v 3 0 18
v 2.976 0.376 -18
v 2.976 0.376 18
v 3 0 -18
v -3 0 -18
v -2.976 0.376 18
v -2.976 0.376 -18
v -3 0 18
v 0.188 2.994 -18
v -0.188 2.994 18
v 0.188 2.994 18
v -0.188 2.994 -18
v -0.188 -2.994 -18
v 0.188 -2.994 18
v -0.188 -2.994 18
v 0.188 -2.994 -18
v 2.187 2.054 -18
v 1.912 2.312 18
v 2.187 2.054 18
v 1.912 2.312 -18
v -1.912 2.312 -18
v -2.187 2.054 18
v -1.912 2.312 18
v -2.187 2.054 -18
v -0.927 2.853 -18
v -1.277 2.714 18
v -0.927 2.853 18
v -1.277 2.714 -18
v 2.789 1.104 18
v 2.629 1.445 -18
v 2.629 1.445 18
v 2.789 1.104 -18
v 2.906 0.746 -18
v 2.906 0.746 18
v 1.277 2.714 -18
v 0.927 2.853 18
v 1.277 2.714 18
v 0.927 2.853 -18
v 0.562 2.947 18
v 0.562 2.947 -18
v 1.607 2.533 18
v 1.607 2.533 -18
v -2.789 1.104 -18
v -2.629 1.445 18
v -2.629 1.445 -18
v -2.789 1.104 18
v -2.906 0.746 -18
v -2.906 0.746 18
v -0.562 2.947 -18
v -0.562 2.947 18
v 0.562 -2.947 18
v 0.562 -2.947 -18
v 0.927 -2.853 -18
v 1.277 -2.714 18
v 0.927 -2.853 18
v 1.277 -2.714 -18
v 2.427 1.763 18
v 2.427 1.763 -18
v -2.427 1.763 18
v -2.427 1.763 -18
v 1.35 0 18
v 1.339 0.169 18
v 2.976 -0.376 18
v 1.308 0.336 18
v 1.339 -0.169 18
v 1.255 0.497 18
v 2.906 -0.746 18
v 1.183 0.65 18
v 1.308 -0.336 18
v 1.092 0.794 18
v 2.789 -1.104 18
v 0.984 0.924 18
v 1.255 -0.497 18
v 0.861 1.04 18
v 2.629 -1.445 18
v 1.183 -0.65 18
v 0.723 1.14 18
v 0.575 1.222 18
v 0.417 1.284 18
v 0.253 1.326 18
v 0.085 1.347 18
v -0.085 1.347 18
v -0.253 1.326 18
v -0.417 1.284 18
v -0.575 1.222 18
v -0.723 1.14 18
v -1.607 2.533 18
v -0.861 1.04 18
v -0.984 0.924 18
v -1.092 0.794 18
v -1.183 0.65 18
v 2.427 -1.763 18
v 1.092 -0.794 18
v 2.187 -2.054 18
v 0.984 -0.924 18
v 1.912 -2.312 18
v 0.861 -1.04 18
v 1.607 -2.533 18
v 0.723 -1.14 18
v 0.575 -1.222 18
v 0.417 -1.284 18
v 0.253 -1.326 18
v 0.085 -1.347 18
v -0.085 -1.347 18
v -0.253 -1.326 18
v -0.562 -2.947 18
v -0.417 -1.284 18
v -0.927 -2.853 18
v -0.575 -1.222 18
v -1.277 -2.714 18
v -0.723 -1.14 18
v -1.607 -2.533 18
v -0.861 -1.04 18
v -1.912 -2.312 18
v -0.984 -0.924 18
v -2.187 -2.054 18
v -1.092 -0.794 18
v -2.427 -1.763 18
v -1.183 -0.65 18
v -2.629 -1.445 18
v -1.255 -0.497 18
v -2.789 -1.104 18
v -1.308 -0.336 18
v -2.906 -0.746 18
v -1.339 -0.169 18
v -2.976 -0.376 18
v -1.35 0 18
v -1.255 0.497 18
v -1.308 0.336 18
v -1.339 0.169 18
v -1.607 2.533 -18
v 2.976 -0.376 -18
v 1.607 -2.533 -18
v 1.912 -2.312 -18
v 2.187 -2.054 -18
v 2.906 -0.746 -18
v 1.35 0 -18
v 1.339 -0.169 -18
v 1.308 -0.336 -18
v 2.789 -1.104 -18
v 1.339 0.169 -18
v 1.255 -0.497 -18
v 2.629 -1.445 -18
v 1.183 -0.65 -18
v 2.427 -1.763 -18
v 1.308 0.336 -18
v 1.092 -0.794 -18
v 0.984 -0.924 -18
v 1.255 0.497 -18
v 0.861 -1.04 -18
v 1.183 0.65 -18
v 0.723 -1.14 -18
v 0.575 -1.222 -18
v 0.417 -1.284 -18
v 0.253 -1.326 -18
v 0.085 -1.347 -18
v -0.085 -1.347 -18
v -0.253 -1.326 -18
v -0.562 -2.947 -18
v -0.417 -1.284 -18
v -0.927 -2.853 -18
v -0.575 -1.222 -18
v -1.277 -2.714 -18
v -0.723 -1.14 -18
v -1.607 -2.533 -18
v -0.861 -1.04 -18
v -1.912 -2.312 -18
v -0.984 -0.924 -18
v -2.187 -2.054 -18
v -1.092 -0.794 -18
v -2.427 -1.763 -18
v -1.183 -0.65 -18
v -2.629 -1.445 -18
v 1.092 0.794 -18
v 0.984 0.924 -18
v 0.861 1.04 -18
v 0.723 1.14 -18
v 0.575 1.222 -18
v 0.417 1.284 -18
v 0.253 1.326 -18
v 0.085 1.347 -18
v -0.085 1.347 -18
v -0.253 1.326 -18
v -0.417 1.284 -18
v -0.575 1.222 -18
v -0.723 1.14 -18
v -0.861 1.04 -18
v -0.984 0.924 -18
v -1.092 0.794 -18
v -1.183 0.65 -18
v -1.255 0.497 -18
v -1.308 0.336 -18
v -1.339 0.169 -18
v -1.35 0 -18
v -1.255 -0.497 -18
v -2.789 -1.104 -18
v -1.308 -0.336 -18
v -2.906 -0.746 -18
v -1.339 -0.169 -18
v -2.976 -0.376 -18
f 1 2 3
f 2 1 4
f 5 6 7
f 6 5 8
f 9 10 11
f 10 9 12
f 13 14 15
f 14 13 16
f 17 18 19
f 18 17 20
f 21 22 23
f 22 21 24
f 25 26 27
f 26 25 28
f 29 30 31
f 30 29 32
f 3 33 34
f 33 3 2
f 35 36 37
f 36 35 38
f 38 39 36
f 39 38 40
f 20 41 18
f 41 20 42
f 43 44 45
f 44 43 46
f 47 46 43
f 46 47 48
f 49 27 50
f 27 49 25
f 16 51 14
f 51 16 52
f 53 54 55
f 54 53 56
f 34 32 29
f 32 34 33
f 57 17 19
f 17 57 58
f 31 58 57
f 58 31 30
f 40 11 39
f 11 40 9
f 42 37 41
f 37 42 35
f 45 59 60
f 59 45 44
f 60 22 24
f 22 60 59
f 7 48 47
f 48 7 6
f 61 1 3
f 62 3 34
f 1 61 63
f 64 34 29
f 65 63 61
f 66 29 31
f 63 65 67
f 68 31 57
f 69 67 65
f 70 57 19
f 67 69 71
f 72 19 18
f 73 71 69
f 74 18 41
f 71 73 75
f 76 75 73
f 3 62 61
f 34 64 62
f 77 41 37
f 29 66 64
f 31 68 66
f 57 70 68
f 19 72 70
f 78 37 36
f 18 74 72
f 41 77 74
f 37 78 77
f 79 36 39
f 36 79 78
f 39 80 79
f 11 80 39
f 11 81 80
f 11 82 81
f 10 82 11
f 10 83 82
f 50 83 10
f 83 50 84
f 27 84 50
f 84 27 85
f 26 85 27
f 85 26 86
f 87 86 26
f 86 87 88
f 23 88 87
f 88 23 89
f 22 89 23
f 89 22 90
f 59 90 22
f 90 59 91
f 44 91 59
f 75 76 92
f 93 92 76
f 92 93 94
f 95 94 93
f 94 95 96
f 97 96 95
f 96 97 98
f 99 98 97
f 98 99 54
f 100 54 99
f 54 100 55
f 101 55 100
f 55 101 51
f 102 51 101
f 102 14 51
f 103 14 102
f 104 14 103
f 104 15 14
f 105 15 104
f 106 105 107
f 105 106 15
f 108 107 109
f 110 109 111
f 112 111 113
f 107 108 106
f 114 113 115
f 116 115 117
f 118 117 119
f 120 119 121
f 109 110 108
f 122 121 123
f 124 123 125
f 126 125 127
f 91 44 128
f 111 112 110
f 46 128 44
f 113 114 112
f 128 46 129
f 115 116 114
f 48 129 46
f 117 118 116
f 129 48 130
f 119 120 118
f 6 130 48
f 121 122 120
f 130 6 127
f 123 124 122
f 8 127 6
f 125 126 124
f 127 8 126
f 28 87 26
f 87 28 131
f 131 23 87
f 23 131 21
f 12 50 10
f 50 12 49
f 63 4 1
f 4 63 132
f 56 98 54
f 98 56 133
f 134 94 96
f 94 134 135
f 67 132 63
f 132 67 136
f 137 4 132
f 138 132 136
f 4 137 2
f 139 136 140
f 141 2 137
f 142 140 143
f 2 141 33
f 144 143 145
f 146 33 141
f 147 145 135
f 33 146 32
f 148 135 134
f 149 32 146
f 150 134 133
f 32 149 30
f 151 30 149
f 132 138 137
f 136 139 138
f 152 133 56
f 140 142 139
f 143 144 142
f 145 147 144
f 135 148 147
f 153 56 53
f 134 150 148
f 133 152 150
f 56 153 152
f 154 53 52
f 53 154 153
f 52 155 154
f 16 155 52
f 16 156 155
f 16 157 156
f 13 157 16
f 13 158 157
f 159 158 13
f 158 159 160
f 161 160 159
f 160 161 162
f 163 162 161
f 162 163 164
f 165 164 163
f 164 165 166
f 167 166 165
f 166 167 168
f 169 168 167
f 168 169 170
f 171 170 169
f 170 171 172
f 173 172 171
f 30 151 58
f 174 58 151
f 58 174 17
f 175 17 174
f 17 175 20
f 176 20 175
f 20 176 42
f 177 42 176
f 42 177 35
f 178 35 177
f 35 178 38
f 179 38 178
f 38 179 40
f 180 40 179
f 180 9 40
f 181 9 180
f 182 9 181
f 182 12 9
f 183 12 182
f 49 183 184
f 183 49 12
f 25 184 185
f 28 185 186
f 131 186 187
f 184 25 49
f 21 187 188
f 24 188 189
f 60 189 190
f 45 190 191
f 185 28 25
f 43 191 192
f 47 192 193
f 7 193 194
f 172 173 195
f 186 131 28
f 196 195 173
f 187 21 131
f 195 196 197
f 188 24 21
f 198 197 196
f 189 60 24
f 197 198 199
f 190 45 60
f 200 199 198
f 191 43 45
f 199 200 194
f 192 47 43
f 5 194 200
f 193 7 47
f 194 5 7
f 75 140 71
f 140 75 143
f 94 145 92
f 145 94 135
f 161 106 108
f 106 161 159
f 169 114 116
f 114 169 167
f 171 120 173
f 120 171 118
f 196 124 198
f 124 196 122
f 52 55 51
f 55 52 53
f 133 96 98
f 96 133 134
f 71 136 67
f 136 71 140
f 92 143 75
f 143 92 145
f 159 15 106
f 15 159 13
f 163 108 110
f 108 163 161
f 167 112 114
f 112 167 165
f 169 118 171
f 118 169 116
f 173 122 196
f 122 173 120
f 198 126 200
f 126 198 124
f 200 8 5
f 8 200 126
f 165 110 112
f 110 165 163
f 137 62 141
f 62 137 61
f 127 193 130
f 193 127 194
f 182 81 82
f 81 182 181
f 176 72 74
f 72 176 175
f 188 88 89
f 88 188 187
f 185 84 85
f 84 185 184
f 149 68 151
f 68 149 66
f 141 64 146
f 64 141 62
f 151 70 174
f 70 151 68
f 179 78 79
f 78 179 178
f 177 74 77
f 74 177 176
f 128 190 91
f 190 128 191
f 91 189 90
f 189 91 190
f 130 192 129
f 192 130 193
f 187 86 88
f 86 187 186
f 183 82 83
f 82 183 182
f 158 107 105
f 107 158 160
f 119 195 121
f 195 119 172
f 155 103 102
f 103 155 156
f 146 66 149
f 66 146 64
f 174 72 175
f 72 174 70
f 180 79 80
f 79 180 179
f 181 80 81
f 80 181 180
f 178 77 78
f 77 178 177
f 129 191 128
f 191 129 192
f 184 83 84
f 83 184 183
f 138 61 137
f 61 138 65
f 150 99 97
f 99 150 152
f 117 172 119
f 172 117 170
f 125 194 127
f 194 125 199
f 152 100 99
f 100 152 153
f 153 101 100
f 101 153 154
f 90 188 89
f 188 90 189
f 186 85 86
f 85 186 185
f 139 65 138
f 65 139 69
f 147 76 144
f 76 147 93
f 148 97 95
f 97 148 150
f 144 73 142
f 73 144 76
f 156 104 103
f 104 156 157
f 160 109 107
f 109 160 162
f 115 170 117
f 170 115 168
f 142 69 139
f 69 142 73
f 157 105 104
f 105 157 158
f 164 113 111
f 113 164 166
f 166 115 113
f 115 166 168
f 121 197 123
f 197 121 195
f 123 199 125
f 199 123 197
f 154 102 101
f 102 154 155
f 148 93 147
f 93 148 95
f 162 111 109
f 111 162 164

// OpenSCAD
$fn = 50;


difference() {
	union() {
		translate(v = [0, 0, -18.0000000000]) {
			cylinder(h = 36, r = 3.0000000000);
		}
	}
	union() {
		translate(v = [0, 0, -100.0000000000]) {
			cylinder(h = 200, r = 1.3500000000);
		}
	}
}
